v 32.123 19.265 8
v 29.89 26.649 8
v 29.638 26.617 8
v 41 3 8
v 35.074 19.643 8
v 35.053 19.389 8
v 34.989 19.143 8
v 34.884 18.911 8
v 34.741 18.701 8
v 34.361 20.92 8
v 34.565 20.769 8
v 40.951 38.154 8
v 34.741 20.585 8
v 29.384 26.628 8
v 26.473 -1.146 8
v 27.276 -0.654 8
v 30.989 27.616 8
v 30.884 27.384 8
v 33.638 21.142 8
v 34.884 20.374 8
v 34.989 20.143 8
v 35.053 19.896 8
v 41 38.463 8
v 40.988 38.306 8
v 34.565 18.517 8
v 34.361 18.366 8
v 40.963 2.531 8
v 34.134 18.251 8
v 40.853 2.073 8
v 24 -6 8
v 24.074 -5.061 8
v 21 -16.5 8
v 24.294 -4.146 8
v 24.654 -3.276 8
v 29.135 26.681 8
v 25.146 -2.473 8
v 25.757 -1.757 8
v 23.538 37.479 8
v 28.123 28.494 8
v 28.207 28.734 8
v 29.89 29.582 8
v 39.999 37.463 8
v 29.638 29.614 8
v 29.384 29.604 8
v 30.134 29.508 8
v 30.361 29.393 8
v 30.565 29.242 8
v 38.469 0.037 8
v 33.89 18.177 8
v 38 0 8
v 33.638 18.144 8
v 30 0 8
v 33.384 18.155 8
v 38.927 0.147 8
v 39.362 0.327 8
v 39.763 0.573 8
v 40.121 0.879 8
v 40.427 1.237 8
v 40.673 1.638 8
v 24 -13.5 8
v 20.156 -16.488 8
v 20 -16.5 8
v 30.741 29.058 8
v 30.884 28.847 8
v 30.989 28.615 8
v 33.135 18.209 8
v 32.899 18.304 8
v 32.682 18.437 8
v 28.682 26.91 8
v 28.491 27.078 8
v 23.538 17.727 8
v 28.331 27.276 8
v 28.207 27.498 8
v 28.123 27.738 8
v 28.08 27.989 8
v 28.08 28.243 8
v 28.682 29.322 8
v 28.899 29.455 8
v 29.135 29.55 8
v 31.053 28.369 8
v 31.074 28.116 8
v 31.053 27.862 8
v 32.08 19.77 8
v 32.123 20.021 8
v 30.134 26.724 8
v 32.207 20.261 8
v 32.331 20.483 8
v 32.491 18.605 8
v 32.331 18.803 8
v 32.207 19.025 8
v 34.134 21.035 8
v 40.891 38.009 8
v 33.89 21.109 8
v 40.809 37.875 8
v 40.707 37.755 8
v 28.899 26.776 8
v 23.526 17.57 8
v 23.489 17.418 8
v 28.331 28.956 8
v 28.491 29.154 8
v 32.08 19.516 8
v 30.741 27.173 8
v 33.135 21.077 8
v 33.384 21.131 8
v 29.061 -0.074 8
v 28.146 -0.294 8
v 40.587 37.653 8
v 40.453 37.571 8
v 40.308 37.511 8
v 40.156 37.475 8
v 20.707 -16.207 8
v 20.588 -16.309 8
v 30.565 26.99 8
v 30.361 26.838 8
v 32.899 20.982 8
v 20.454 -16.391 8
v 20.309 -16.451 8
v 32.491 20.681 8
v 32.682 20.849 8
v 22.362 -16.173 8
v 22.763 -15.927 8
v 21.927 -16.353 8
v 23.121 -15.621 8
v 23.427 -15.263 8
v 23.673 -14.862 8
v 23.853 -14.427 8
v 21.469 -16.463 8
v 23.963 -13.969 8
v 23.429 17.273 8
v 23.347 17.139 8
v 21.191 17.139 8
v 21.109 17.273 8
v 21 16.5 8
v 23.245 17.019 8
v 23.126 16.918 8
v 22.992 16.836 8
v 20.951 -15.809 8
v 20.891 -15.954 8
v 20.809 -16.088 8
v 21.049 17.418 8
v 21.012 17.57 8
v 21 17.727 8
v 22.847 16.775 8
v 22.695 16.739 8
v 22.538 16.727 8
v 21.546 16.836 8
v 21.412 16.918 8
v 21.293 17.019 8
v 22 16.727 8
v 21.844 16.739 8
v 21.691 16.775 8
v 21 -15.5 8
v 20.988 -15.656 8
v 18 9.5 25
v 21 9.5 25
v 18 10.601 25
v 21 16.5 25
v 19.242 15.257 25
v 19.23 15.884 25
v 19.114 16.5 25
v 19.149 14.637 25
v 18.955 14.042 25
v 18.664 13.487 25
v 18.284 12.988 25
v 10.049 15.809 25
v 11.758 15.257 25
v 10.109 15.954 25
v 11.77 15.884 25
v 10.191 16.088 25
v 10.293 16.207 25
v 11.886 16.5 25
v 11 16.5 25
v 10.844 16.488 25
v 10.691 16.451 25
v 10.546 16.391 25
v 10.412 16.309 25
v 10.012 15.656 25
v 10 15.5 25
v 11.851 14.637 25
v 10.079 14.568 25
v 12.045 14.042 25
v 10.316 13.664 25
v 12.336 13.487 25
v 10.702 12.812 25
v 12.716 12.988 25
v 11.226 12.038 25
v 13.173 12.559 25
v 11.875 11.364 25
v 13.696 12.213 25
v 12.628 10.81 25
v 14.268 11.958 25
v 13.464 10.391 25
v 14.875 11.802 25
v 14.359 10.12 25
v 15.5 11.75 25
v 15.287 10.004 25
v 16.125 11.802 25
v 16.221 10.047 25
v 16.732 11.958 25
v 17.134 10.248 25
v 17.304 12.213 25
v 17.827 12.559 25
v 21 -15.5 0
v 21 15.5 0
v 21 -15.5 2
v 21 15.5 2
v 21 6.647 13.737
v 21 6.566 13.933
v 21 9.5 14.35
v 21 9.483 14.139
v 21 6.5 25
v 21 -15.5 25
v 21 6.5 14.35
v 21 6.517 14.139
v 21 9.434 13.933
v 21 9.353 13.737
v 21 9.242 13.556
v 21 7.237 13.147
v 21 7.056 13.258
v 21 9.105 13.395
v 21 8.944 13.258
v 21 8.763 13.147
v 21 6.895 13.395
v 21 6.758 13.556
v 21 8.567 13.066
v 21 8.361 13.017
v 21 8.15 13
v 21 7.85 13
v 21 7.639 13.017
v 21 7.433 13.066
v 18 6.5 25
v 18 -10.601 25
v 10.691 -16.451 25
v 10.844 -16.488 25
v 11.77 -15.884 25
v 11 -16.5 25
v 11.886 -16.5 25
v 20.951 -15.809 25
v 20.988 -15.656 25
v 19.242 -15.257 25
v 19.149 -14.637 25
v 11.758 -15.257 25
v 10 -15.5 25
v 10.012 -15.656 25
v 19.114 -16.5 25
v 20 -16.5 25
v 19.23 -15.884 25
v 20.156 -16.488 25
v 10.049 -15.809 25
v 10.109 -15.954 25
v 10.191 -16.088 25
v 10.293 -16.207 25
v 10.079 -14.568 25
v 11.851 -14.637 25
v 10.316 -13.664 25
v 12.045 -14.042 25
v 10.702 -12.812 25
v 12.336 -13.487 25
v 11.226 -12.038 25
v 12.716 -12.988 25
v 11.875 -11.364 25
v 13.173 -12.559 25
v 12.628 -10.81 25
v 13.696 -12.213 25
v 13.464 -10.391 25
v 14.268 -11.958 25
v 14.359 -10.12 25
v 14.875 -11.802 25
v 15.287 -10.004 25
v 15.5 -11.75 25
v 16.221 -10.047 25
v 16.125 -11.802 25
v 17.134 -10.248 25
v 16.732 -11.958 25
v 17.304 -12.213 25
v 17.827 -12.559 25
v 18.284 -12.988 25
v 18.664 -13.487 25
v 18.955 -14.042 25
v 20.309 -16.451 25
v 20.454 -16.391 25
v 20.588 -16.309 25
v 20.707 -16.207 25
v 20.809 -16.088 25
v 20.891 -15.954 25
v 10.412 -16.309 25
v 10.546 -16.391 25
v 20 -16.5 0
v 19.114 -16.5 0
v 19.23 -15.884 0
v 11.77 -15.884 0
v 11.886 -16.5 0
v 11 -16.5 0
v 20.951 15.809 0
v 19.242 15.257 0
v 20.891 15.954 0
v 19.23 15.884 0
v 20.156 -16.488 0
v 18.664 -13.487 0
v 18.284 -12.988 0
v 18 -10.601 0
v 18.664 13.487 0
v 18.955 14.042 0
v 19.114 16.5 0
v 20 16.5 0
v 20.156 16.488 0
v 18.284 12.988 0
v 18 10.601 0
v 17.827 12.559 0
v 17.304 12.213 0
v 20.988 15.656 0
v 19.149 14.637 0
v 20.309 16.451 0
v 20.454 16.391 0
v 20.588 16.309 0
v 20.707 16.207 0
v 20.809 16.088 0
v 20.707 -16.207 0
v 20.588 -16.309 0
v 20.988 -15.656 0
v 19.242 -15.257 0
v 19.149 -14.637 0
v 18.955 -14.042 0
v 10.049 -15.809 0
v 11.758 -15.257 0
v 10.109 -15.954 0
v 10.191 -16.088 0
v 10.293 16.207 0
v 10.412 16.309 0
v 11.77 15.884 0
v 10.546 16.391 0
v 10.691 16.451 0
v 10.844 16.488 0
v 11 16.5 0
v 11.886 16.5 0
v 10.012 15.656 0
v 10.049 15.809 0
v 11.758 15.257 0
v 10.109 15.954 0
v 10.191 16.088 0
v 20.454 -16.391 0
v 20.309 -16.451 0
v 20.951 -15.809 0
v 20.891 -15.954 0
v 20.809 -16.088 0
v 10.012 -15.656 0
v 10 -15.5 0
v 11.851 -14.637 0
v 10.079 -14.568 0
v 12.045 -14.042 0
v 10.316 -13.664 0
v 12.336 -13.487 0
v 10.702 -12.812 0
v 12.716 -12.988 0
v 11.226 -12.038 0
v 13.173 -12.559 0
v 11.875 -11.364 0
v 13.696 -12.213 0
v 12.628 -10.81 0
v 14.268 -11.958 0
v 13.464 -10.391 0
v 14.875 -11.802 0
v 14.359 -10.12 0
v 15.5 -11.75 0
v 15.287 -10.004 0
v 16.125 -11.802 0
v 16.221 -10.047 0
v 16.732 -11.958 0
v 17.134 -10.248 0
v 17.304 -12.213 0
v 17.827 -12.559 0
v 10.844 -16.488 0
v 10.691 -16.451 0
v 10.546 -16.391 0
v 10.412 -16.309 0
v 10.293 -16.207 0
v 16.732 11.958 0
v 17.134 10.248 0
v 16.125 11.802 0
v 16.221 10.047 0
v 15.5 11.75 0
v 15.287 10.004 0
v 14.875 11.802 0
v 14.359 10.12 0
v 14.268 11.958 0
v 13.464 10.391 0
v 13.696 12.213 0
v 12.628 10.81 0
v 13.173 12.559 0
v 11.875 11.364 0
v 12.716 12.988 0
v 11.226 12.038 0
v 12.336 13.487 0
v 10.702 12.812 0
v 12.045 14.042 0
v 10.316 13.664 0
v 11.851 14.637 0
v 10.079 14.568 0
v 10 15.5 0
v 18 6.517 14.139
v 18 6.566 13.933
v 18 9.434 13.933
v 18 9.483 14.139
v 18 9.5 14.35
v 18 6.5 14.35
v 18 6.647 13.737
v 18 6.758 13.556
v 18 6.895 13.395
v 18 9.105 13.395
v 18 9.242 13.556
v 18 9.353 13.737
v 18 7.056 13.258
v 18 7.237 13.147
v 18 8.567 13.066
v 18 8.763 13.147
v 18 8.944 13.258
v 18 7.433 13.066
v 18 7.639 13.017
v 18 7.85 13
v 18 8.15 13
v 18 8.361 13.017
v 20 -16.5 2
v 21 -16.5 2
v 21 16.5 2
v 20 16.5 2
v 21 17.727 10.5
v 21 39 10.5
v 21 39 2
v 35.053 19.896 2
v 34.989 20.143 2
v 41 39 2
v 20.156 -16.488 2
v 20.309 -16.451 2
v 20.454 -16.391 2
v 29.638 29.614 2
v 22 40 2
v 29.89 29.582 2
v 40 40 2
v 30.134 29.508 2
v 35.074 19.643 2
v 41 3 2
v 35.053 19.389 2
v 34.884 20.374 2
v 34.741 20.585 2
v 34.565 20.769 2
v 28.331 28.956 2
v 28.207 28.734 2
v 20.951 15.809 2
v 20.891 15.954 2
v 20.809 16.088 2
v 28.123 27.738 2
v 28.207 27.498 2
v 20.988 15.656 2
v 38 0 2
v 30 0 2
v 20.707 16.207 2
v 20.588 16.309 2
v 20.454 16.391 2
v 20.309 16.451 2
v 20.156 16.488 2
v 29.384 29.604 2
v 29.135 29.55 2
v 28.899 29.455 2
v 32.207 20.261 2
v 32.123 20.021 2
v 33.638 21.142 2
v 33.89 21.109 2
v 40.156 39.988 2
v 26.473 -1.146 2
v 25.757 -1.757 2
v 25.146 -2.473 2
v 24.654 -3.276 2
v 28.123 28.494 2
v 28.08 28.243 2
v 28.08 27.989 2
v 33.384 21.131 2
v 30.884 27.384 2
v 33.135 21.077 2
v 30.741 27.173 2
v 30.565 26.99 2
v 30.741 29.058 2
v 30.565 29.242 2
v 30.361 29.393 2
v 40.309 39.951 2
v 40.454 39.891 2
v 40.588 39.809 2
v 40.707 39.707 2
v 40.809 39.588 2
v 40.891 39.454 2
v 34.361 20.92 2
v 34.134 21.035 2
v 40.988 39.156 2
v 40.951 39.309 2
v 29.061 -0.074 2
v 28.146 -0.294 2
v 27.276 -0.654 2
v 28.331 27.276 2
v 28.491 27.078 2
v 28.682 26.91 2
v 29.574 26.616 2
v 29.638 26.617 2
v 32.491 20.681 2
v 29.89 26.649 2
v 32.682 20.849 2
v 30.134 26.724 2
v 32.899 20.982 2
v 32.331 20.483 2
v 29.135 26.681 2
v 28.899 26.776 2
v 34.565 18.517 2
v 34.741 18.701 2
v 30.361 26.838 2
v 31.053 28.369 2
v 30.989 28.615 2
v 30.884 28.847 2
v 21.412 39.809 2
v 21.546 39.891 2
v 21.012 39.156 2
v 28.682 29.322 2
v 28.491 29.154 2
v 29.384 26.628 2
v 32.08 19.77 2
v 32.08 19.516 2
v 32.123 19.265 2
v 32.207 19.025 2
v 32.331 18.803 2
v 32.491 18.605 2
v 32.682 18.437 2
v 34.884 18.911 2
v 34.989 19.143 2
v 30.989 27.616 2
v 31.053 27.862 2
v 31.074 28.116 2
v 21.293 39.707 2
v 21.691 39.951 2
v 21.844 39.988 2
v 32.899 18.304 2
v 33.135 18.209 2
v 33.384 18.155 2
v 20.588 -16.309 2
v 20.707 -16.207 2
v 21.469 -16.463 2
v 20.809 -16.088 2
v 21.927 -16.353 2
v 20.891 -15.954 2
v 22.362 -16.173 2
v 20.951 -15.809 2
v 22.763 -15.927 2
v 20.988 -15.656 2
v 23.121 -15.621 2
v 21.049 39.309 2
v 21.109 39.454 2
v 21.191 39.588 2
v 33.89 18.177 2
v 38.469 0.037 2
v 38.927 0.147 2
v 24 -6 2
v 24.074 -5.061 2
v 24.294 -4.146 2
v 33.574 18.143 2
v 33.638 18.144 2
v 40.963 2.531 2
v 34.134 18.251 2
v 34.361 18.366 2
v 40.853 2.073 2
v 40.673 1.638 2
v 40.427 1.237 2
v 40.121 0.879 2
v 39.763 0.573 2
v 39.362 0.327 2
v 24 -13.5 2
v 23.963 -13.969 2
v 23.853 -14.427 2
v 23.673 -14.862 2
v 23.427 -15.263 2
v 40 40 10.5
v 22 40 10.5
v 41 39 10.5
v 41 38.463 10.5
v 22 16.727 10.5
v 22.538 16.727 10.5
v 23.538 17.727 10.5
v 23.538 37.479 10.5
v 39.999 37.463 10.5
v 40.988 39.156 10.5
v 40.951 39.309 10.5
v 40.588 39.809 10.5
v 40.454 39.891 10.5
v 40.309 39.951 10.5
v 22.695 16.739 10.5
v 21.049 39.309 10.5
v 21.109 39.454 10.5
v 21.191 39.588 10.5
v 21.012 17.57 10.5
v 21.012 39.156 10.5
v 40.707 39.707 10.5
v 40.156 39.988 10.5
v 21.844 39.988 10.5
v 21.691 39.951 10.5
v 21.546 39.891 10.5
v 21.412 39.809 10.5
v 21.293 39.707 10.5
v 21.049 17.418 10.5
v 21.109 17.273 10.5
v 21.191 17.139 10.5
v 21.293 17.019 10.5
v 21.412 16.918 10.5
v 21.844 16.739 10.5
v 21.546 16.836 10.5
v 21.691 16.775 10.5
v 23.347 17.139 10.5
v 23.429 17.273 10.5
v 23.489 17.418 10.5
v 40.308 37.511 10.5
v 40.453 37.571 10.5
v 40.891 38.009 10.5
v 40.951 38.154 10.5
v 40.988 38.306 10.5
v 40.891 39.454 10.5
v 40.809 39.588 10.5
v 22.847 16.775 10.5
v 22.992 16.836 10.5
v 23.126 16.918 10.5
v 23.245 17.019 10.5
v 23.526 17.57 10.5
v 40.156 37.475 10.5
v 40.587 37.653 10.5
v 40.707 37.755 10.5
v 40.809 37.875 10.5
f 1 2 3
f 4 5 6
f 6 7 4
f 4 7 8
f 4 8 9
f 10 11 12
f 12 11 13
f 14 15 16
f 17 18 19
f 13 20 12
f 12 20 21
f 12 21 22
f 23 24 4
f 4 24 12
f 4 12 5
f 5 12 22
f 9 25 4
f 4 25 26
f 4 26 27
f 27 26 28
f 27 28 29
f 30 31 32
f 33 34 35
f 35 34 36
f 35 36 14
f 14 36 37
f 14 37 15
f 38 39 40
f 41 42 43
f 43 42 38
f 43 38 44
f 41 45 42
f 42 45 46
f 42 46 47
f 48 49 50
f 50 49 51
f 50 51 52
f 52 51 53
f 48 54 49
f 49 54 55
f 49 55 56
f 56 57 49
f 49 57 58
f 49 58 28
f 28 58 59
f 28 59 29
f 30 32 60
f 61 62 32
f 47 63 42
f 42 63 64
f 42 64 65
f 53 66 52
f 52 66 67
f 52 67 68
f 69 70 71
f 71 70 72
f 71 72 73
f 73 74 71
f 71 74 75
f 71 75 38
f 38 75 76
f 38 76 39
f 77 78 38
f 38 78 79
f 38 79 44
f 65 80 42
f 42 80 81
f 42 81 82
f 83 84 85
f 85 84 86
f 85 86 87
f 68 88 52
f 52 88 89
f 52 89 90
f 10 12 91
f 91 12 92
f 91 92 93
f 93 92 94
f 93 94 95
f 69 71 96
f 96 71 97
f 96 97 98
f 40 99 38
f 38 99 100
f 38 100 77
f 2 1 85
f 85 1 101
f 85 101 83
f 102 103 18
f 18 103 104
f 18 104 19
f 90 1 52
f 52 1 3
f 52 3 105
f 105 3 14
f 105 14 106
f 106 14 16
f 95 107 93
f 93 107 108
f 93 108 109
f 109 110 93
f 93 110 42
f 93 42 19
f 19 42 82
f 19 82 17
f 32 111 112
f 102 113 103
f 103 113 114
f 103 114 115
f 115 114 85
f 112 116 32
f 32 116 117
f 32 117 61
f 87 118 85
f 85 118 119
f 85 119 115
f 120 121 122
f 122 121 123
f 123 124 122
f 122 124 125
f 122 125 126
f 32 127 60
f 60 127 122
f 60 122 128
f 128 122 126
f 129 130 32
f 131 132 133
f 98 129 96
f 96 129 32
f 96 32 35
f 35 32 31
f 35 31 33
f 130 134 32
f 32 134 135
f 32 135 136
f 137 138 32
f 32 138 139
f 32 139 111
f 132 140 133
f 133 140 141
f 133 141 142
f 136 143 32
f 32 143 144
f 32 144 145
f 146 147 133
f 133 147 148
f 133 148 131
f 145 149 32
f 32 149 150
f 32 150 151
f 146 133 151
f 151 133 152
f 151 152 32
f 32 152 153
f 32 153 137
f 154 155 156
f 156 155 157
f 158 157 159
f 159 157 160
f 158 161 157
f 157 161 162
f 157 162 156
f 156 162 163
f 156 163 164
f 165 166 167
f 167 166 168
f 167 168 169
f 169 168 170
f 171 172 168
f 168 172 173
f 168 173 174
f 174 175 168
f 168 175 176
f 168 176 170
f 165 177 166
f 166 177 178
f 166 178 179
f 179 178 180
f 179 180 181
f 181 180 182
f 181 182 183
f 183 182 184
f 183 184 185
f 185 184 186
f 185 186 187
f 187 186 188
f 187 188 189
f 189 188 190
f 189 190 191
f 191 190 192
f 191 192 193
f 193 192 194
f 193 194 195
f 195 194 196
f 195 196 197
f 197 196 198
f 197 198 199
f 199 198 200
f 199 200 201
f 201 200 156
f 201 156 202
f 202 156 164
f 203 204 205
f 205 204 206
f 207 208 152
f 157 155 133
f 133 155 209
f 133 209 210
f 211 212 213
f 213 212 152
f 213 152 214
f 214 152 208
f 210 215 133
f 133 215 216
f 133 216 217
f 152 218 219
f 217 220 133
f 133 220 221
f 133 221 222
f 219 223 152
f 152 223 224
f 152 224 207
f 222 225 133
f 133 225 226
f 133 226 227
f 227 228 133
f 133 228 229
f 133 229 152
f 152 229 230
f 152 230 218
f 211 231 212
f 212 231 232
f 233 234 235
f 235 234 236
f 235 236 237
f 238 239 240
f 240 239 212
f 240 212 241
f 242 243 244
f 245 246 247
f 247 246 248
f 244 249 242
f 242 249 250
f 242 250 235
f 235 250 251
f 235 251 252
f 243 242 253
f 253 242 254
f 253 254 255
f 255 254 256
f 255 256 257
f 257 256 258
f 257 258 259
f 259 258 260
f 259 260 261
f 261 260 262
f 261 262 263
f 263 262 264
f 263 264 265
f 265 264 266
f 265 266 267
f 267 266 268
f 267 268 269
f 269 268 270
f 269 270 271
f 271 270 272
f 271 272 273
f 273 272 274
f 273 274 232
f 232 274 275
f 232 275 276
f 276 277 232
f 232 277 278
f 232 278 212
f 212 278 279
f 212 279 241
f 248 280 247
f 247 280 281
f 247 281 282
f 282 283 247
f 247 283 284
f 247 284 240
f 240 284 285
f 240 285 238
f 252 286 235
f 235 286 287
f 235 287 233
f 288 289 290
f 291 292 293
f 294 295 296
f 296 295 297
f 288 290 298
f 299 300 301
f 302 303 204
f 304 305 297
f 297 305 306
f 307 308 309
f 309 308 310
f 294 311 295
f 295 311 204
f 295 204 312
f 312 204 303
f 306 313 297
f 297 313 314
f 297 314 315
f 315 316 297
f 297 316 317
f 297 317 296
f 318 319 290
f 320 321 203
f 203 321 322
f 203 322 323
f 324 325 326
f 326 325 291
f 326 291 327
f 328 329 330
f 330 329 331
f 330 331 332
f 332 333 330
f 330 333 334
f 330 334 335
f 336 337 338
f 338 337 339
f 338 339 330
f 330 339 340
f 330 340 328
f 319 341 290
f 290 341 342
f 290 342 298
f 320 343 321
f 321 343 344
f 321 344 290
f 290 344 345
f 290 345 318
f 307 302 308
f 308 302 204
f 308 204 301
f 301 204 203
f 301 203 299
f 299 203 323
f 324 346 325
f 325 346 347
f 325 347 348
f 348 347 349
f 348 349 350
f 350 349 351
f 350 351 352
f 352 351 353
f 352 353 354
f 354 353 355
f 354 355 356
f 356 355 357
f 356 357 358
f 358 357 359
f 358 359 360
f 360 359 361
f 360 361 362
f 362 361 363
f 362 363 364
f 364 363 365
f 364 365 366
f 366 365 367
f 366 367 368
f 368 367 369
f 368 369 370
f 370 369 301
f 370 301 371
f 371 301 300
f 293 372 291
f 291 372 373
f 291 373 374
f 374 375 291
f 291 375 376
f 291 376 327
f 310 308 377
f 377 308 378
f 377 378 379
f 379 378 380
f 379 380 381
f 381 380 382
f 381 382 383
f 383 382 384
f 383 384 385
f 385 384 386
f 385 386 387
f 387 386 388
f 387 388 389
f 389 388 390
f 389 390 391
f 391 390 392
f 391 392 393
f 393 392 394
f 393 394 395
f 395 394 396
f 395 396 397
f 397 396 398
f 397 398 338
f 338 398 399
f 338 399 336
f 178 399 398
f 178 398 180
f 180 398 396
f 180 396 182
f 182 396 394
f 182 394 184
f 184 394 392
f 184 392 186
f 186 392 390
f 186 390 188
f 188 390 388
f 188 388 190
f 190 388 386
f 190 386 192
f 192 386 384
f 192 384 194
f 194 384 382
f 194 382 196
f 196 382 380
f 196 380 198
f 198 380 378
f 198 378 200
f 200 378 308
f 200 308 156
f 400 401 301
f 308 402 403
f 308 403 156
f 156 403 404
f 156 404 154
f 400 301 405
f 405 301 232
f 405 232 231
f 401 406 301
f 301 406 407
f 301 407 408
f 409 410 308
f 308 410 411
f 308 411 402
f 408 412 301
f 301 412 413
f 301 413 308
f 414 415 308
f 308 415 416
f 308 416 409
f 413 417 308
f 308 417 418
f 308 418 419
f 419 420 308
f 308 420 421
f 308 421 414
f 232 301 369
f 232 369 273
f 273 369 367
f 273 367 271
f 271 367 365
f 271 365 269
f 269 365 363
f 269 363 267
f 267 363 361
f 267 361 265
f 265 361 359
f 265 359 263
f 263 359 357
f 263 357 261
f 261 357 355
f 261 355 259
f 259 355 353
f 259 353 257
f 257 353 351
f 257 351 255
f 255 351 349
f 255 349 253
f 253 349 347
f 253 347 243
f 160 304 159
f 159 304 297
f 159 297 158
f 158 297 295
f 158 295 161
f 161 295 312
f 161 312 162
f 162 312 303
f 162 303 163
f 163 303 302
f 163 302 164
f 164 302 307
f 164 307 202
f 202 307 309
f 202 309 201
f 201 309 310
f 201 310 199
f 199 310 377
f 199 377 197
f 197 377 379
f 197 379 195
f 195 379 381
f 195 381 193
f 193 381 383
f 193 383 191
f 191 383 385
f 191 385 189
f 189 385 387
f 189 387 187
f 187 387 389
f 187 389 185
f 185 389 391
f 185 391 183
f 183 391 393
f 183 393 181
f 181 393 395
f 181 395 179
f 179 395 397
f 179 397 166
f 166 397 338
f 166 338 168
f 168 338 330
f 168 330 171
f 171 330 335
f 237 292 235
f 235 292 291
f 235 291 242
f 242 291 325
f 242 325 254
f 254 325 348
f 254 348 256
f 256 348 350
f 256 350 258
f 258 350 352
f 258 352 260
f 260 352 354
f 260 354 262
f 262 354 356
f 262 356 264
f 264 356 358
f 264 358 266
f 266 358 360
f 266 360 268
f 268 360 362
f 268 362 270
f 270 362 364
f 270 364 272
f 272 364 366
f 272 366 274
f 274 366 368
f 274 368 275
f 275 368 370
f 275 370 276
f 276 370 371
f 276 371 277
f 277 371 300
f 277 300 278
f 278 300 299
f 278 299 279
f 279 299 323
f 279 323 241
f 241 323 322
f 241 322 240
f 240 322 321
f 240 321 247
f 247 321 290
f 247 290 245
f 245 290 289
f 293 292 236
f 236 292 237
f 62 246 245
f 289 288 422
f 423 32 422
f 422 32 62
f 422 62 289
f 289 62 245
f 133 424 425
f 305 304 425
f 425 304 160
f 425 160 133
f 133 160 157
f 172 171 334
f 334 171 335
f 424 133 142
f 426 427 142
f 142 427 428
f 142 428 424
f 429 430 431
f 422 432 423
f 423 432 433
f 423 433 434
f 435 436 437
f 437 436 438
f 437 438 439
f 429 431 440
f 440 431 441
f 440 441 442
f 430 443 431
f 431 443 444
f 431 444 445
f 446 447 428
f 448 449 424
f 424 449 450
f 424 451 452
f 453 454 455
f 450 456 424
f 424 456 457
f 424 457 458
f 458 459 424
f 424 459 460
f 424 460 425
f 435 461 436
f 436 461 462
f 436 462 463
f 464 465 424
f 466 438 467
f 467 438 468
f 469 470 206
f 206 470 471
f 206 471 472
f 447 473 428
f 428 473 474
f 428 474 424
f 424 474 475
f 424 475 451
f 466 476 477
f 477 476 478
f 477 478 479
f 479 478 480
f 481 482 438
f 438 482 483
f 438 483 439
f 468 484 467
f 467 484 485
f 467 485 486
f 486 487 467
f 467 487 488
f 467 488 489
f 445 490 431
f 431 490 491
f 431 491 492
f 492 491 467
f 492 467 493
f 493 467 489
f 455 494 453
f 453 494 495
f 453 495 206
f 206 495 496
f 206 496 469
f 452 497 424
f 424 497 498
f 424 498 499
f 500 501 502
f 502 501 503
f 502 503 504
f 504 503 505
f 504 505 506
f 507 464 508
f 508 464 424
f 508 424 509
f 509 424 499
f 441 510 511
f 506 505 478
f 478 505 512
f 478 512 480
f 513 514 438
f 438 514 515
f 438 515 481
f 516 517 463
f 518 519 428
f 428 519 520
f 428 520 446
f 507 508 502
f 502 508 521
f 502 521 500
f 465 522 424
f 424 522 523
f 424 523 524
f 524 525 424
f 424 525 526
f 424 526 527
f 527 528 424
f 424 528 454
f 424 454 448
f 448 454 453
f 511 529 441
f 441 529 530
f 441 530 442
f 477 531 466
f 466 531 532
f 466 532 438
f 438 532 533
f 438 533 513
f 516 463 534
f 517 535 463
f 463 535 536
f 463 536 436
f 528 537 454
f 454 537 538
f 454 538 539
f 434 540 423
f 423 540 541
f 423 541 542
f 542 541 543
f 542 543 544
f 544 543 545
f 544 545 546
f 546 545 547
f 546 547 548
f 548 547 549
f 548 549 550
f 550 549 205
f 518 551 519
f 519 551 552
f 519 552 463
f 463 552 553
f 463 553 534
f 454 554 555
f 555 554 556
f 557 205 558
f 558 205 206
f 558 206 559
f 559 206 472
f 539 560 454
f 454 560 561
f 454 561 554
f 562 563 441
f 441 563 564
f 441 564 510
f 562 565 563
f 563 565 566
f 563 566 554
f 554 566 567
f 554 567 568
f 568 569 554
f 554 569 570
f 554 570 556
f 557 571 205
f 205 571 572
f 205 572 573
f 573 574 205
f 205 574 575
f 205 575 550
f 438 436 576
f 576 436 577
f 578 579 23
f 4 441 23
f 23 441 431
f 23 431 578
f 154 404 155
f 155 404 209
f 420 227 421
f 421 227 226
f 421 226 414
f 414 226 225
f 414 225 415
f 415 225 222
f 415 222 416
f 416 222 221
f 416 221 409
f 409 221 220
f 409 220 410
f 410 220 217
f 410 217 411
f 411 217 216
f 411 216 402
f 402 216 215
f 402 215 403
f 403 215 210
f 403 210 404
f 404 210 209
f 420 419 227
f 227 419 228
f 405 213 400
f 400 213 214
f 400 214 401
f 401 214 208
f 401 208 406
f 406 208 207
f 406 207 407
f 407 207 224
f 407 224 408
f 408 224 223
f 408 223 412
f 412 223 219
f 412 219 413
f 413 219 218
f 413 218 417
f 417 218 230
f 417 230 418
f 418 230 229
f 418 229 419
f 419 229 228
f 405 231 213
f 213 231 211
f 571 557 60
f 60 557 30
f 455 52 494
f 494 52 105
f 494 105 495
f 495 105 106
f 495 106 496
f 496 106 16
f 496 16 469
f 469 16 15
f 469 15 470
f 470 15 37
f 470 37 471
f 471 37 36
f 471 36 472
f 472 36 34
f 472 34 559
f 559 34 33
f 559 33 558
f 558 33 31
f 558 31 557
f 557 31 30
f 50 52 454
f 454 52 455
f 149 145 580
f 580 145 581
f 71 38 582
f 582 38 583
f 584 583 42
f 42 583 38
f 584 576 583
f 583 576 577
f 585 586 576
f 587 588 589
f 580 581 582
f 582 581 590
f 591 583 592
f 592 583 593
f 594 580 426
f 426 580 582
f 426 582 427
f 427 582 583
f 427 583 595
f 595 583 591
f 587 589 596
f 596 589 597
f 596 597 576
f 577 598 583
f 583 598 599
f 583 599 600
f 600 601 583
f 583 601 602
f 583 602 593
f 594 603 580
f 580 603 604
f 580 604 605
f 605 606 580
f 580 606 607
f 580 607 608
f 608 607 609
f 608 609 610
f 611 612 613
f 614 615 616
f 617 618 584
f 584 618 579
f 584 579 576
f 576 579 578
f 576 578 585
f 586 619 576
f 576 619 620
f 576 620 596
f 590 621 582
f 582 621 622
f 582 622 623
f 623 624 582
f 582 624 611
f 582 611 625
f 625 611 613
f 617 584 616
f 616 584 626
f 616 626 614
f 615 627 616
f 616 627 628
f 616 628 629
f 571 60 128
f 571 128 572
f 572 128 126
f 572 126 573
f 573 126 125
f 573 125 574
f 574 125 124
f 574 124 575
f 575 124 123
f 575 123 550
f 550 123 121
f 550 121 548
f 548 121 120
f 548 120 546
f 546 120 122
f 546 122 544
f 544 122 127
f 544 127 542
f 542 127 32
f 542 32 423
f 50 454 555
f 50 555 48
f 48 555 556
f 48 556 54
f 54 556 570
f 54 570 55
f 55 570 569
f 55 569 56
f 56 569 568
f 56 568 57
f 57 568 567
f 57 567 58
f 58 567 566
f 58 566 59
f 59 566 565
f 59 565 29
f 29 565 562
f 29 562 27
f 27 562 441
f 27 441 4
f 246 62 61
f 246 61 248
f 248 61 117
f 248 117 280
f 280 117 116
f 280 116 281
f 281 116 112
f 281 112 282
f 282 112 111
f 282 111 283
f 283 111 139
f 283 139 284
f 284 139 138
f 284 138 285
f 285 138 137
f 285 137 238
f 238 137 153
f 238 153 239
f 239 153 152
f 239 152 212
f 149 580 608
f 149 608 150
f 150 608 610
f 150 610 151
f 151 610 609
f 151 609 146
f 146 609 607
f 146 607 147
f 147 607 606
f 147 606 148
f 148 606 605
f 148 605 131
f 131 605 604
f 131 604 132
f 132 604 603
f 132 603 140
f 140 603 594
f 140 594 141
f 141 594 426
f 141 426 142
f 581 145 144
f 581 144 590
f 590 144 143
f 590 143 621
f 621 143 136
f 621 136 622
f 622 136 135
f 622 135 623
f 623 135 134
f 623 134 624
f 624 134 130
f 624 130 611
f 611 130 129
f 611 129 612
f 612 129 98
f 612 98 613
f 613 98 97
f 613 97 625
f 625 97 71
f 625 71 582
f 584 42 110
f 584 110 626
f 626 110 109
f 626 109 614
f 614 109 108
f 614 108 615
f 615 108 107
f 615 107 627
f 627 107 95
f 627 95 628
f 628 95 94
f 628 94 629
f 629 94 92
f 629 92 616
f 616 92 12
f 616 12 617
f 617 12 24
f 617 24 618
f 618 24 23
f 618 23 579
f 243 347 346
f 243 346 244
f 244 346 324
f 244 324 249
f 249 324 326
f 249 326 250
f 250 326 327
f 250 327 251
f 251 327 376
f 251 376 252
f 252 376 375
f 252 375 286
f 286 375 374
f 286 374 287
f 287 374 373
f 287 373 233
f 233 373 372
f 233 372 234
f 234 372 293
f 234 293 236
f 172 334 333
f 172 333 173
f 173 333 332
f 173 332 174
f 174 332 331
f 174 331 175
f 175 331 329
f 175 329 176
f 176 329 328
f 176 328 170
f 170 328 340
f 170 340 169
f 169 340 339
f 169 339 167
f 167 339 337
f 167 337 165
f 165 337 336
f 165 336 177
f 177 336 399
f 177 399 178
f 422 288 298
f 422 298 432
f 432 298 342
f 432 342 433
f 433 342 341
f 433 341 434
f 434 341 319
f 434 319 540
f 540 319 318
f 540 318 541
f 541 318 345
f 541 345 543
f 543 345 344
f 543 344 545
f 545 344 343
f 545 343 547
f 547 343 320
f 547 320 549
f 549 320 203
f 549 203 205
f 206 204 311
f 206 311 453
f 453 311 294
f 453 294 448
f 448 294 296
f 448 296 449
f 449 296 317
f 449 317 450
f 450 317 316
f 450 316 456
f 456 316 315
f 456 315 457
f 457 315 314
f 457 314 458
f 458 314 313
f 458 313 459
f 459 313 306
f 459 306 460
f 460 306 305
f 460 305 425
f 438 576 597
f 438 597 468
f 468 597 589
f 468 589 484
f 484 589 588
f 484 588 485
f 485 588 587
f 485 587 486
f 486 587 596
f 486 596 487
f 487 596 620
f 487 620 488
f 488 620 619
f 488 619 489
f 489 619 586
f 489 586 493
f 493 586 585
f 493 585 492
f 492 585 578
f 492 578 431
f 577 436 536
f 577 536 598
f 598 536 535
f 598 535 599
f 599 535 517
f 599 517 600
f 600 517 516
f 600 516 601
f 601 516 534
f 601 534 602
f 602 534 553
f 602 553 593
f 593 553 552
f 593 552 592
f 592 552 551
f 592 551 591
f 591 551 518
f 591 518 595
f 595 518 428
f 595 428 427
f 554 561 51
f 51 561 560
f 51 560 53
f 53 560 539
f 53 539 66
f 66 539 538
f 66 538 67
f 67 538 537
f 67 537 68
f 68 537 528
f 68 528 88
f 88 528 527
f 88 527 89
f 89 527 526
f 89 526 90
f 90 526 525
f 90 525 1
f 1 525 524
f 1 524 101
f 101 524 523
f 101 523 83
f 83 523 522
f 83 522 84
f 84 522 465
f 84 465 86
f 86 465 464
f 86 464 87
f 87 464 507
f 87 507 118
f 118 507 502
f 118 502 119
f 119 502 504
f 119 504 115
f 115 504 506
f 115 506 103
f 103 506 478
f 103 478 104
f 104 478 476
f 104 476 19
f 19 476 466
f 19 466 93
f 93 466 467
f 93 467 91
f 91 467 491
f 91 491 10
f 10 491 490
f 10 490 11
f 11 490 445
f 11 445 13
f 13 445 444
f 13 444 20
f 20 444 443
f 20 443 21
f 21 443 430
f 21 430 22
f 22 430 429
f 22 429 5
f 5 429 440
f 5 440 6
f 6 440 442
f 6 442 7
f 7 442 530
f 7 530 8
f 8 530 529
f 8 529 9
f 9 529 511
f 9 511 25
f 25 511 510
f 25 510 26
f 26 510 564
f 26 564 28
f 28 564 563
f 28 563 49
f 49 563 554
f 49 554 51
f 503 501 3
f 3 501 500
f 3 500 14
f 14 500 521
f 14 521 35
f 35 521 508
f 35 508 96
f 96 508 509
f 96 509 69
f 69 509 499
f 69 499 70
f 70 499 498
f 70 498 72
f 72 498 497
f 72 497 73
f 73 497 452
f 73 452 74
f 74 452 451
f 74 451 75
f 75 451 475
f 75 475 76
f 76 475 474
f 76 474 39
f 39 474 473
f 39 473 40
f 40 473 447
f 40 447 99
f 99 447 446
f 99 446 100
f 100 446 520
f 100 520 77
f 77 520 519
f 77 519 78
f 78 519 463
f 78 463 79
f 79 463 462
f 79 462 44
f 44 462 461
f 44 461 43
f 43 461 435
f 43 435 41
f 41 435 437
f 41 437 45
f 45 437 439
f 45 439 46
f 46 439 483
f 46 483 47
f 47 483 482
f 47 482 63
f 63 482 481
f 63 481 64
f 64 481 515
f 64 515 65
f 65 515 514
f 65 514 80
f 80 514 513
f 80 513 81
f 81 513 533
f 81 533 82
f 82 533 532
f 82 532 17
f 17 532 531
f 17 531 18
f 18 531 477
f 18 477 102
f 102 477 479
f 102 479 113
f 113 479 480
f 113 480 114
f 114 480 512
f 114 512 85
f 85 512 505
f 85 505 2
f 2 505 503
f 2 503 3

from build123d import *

# Parameters (mm, degrees)
SKETCH1_R           = 3.75
BOSS_EXTRUDE1_DEPTH = 25
FILLET1_R           = 2
SKETCH3_W           = 20
SKETCH3_H           = 19
CUT_EXTRUDE2_DEPTH  = 6
FILLET2_R           = 3
SKETCH7_W           = 32.058329052
SKETCH7_H           = 42.536839165
CUT_EXTRUDE5_DEPTH  = 25
SKETCH10_W          = 12.254265393
SKETCH10_H          = 5.748315633
SKETCH10_W_2        = 13.681746689
SKETCH10_H_2        = 5.503604554
CUT_EXTRUDE6_DEPTH  = 25
SKETCH11_W          = 6
SKETCH11_H          = 56.5
BOSS_EXTRUDE2_DEPTH = 20
CUT_EXTRUDE9_DEPTH  = 3
CUT_EXTRUDE11_DEPTH = 10
BOSS_EXTRUDE3_DEPTH = 2.5
FILLET5_R           = 3
FILLET6_R           = 1
SKETCH17_R          = 1.5
CUT_EXTRUDE12_DEPTH = 10


with BuildPart() as part:
    # Sketch1 → Boss-Extrude1 (new body)
    with BuildSketch(Plane.XY):
        with BuildLine():
            Line((-21, 16.5), (-21, -16.5))
            Line((-21, -16.5), (-16.5, -21))
            Line((-16.5, -21), (16.5, -21))
            Line((16.5, -21), (21, -16.5))
            Line((21, -16.5), (21, 16.5))
            Line((21, 16.5), (16.5, 21))
            Line((16.5, 21), (11.125, 21))
            Line((11.125, 21), (11.125, 18))
            Line((11.125, 18), (10.601020514, 18))
            ThreePointArc((10.601020514, 18), (11.610912703, 11.610912703), (18, 10.601020514))
            Line((18, 10.601020514), (18, -10.601020514))
            ThreePointArc((18, -10.601020514), (11.610912703, -11.610912703), (10.601020514, -18))
            Line((10.601020514, -18), (-10.601020514, -18))
            ThreePointArc((-10.601020514, -18), (-11.610912703, -11.610912703), (-18, -10.601020514))
            Line((-18, -10.601020514), (-18, 10.601020514))
            ThreePointArc((-18, 10.601020514), (-11.610912703, 11.610912703), (-10.601020514, 18))
            Line((-10.601020514, 18), (-11.125, 18))
            Line((-11.125, 18), (-11.125, 21))
            Line((-11.125, 21), (-16.5, 21))
            Line((-16.5, 21), (-21, 16.5))
        make_face()
        with Locations((-15.5, 15.5)):
            Circle(SKETCH1_R, mode=Mode.SUBTRACT)
        with Locations((15.5, 15.5)):
            Circle(SKETCH1_R, mode=Mode.SUBTRACT)
        with Locations((15.5, -15.5)):
            Circle(SKETCH1_R, mode=Mode.SUBTRACT)
        with Locations((-15.5, -15.5)):
            Circle(SKETCH1_R, mode=Mode.SUBTRACT)
    extrude(amount=BOSS_EXTRUDE1_DEPTH)

    # Fillet1
    fillet1_edges = [part.edges().sort_by_distance(p)[0] for p in [
        (-21, -16.5, 12.5),
        (-21, 16.5, 12.5),
        (-16.5, 21, 12.5),
        (-16.5, -21, 12.5),
    ]]
    fillet(fillet1_edges, radius=FILLET1_R)

    # Sketch3 → Cut-Extrude2 (cut)
    with BuildSketch(Plane(origin=(0, -21, 0), x_dir=(-1, 0, 0), z_dir=(0, -1, 0))):
        with Locations((0, -12.5)):
            Rectangle(SKETCH3_W, SKETCH3_H)
    extrude(amount=-CUT_EXTRUDE2_DEPTH, mode=Mode.SUBTRACT)

    # Fillet2
    fillet2_edges = [part.edges().sort_by_distance(p)[0] for p in [
        (10, -19.5, 22),
        (-10, -19.5, 3),
        (-10, -19.5, 22),
        (10, -19.5, 3),
    ]]
    fillet(fillet2_edges, radius=FILLET2_R)

    # Sketch7 → Cut-Extrude5 (cut)
    with BuildSketch(Plane.XY.offset(25)):
        with Locations((-6.029164526, 0.268419582)):
            Rectangle(SKETCH7_W, SKETCH7_H)
    extrude(amount=-CUT_EXTRUDE5_DEPTH, mode=Mode.SUBTRACT)

    # Sketch10 → Cut-Extrude6 (cut)
    with BuildSketch(Plane.XY.offset(25)):
        with Locations((14.872867304, 19.374157817)):
            Rectangle(SKETCH10_W, SKETCH10_H)
        with Locations((14.159126655, -19.251802277)):
            Rectangle(SKETCH10_W_2, SKETCH10_H_2)
    extrude(amount=-CUT_EXTRUDE6_DEPTH, mode=Mode.SUBTRACT)

    # Sketch11 → Boss-Extrude2 (add)
    with BuildSketch(Plane(origin=(21, 0, 0), x_dir=(0, 0, -1), z_dir=(1, 0, 0))):
        with Locations((-5, 11.75)):
            Rectangle(SKETCH11_W, SKETCH11_H)
    extrude(amount=BOSS_EXTRUDE2_DEPTH)

    # Sketch13 → Cut-Extrude9 (cut)
    with BuildSketch(Plane(origin=(21, 0, 0), x_dir=(0, 0, -1), z_dir=(1, 0, 0))):
        with BuildLine():
            Line((-25, 9.5), (-14.35, 9.5))
            ThreePointArc((-14.35, 9.5), (-13.395405845, 9.104594155), (-13, 8.15))
            Line((-13, 8.15), (-13, 7.85))
            ThreePointArc((-13, 7.85), (-13.395405845, 6.895405845), (-14.35, 6.5))
            Line((-14.35, 6.5), (-25, 6.5))
            Line((-25, 6.5), (-25, 9.5))
        make_face()
    extrude(amount=-CUT_EXTRUDE9_DEPTH, mode=Mode.SUBTRACT)

    # Sketch15 → Cut-Extrude11 (cut)
    with BuildSketch(Plane.XY.offset(8)):
        with BuildLine():
            Line((24, -16.5), (24, -6))
            ThreePointArc((24, -6), (25.757359313, -1.757359313), (30, 0))
            Line((30, 0), (41, 0))
            Line((41, 0), (41, -16.5))
            Line((41, -16.5), (24, -16.5))
        make_face()
    extrude(amount=-CUT_EXTRUDE11_DEPTH, mode=Mode.SUBTRACT)

    # Sketch16 → Boss-Extrude3 (add)
    with BuildSketch(Plane.XY.offset(8)):
        Polygon((21, 40), (41, 40), (41, 37.461788715), (23.538211285, 37.478793923), (23.538211285, 16.726527219), (21, 16.726527219), (21, 37.478793923), align=None)
    extrude(amount=BOSS_EXTRUDE3_DEPTH)

    # Fillet5
    fillet5_edges = [part.edges().sort_by_distance(p)[0] for p in [
        (41, 0, 5),
        (24, -16.5, 5),
    ]]
    fillet(fillet5_edges, radius=FILLET5_R)

    # Fillet6
    fillet6_edges = [part.edges().sort_by_distance(p)[0] for p in [
        (10.091673087, 16.5, 12.5),
        (10.091673087, -16.5, 12.5),
        (21, 16.5, 1),
        (21, -16.5, 1),
        (21, 40, 6.25),
        (41, 40, 6.25),
        (21, 16.726527219, 9.25),
        (23.538211285, 16.726527219, 9.25),
        (41, 37.461788715, 9.25),
        (21, -16.5, 16.5),
    ]]
    fillet(fillet6_edges, radius=FILLET6_R)

    # Sketch17 → Cut-Extrude12 (cut)
    with BuildSketch(Plane.XY.offset(8)):
        with Locations((29.574223118, 28.11574528)):
            Circle(SKETCH17_R)
        with Locations((33.574223119, 19.642947284)):
            Circle(SKETCH17_R)
    extrude(amount=-CUT_EXTRUDE12_DEPTH, mode=Mode.SUBTRACT)


solid = part.part
